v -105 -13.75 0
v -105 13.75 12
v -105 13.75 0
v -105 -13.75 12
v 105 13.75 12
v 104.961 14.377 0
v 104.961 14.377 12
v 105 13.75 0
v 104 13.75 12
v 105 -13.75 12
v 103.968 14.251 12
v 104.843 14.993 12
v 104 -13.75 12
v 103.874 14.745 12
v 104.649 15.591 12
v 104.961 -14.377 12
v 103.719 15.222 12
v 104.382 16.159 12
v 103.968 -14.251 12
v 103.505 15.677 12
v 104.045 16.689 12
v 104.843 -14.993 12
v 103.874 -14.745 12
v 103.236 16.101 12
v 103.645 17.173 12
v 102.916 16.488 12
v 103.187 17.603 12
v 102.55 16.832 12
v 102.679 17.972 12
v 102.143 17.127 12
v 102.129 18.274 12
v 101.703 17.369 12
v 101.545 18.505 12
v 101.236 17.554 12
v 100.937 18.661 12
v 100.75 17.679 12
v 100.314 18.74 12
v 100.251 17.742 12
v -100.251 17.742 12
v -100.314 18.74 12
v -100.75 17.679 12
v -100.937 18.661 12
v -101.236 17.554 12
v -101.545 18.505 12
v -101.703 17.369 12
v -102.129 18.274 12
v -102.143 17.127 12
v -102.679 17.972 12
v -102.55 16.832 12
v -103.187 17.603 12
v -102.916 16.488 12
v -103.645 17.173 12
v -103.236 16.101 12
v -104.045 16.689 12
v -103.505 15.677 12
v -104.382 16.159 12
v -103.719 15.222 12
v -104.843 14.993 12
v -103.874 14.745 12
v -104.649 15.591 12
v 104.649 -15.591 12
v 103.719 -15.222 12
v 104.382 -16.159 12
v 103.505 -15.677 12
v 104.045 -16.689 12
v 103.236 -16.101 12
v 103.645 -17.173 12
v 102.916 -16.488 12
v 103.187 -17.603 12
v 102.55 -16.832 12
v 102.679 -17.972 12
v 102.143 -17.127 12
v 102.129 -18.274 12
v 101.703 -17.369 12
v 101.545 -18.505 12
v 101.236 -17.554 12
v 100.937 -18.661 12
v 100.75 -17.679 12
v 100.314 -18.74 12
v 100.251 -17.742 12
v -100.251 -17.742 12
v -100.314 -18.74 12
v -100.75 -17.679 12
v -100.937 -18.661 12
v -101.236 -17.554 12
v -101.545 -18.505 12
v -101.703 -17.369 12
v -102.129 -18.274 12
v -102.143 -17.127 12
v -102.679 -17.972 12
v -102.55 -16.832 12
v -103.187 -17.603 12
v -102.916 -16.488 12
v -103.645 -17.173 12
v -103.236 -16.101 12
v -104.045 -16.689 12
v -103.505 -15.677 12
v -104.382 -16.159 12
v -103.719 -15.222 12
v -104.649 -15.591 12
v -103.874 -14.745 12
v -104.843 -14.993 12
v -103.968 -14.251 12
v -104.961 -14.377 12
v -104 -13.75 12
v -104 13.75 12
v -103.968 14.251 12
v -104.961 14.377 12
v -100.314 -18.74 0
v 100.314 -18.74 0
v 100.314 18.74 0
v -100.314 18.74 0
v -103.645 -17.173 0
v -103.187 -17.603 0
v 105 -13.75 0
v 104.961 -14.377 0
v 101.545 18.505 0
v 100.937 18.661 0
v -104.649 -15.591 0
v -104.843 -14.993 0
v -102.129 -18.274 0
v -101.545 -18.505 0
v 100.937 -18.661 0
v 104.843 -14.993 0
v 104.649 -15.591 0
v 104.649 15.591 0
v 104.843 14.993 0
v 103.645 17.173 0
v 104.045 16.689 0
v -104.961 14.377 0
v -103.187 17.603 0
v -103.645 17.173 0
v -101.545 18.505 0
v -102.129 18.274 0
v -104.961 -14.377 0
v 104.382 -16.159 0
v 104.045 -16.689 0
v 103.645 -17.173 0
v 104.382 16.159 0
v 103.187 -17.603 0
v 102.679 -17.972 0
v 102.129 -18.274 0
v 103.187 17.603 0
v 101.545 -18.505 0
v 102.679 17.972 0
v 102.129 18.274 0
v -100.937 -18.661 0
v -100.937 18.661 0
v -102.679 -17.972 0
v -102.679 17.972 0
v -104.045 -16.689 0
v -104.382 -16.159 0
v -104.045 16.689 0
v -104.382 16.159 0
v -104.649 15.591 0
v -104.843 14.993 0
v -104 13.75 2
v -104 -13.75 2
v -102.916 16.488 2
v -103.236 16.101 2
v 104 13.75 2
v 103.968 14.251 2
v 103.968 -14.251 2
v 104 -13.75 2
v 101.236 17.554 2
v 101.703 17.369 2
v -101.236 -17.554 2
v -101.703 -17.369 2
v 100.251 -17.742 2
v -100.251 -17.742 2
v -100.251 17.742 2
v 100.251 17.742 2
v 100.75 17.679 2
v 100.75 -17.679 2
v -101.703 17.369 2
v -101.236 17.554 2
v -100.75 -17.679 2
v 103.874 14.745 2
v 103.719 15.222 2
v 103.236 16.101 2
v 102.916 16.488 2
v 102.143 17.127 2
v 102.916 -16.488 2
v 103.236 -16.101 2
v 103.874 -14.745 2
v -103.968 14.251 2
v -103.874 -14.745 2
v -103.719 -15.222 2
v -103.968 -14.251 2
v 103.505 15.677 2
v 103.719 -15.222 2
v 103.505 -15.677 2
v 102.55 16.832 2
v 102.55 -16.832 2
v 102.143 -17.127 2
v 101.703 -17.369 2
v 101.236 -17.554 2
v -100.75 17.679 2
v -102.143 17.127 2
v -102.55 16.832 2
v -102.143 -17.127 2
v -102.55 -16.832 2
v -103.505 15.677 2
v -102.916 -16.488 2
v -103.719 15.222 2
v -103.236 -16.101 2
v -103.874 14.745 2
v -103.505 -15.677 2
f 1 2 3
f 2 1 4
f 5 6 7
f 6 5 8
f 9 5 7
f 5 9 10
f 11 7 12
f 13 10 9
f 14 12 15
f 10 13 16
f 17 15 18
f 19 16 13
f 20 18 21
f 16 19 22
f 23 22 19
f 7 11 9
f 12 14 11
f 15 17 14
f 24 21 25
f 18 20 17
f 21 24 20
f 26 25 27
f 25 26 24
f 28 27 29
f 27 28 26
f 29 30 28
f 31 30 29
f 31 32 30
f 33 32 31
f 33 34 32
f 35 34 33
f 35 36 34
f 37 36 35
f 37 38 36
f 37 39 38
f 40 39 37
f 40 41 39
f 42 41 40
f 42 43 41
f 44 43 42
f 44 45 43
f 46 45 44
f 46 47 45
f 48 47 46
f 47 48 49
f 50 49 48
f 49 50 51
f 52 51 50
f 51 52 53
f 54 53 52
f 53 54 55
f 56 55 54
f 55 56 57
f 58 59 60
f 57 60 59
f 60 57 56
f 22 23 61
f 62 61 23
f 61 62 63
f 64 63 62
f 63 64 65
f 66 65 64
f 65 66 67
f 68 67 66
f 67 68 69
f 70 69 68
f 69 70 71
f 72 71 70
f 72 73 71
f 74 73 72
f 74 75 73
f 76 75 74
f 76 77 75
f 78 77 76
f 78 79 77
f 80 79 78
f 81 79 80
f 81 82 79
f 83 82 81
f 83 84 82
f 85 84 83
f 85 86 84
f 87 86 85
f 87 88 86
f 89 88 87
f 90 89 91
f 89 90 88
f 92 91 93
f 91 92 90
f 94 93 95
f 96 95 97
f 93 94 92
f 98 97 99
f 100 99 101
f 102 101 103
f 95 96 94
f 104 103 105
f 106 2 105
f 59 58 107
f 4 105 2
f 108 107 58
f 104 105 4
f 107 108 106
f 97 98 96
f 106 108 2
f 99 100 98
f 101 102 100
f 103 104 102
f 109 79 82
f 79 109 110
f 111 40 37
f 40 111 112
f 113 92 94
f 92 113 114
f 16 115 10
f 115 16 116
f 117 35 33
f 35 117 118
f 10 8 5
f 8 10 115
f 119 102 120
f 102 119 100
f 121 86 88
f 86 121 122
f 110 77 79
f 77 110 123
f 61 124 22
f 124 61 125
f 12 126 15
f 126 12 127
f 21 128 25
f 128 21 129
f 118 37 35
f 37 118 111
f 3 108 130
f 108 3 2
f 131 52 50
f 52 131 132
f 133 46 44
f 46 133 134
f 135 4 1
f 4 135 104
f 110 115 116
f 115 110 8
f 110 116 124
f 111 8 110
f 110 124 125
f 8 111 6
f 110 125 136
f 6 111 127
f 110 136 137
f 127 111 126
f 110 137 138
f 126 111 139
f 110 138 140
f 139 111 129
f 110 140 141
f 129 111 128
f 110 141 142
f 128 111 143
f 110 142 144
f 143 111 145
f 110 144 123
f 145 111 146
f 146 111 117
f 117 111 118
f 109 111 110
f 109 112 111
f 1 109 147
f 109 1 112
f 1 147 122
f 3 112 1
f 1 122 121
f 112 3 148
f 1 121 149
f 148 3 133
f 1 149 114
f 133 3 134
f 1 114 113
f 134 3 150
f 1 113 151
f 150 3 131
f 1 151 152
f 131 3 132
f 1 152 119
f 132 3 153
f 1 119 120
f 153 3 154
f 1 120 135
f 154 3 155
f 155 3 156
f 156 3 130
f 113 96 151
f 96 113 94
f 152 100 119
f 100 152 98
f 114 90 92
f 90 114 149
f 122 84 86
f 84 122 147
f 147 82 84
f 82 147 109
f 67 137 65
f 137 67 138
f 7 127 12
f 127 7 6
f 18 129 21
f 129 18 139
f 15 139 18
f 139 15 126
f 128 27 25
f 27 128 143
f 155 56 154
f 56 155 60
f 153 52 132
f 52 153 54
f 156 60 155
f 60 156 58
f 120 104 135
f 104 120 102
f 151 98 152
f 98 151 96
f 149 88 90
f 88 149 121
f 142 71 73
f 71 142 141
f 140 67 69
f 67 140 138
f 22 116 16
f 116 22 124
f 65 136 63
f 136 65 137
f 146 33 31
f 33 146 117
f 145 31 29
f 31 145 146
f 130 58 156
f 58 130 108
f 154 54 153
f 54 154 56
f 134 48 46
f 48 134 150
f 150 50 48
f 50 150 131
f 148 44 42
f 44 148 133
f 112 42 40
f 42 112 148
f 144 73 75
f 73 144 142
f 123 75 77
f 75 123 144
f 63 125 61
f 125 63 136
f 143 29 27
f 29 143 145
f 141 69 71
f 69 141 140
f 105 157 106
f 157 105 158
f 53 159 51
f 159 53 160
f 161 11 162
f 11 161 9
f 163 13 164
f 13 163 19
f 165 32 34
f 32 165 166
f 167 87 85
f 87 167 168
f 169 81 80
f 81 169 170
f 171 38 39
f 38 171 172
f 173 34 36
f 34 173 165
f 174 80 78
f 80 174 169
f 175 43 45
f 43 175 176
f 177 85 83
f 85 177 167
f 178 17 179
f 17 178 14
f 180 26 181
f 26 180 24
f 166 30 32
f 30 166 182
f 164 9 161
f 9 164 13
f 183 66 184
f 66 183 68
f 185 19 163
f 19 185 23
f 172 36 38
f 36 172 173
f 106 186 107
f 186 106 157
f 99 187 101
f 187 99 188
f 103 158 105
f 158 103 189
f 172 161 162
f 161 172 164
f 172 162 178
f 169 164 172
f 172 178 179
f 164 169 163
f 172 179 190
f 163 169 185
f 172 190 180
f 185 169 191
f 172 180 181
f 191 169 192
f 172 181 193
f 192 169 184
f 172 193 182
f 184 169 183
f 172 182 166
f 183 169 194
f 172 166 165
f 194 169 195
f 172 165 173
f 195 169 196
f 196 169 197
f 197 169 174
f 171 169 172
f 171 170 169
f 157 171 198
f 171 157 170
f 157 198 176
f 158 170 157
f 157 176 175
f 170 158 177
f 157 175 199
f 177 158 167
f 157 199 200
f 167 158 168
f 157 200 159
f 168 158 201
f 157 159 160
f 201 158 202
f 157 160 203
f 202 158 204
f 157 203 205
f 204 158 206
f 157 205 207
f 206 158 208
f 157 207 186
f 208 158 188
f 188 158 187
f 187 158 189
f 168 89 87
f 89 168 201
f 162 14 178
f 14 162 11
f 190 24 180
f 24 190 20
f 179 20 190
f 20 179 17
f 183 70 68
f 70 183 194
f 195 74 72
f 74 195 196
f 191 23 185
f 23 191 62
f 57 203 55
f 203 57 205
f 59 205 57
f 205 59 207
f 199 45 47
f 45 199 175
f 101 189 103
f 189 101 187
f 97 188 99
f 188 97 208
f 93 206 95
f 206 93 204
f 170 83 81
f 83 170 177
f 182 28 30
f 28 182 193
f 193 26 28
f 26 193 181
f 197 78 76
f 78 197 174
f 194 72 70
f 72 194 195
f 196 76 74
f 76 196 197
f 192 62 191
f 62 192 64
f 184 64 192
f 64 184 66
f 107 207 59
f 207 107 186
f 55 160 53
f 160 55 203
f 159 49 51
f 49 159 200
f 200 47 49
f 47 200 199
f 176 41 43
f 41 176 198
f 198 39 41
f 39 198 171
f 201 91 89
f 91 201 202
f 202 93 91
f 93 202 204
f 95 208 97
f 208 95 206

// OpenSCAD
$fn = 50;


difference() {
	union() {
		hull() {
			translate(v = [-100.0000000000, 13.7500000000, 0]) {
				cylinder(h = 12, r = 5);
			}
			translate(v = [100.0000000000, 13.7500000000, 0]) {
				cylinder(h = 12, r = 5);
			}
			translate(v = [-100.0000000000, -13.7500000000, 0]) {
				cylinder(h = 12, r = 5);
			}
			translate(v = [100.0000000000, -13.7500000000, 0]) {
				cylinder(h = 12, r = 5);
			}
		}
	}
	union() {
		translate(v = [0, 0, 2]) {
			hull() {
				translate(v = [-100.0000000000, 13.7500000000, 0]) {
					cylinder(h = 10, r = 4);
				}
				translate(v = [100.0000000000, 13.7500000000, 0]) {
					cylinder(h = 10, r = 4);
				}
				translate(v = [-100.0000000000, -13.7500000000, 0]) {
					cylinder(h = 10, r = 4);
				}
				translate(v = [100.0000000000, -13.7500000000, 0]) {
					cylinder(h = 10, r = 4);
				}
			}
		}
	}
}
